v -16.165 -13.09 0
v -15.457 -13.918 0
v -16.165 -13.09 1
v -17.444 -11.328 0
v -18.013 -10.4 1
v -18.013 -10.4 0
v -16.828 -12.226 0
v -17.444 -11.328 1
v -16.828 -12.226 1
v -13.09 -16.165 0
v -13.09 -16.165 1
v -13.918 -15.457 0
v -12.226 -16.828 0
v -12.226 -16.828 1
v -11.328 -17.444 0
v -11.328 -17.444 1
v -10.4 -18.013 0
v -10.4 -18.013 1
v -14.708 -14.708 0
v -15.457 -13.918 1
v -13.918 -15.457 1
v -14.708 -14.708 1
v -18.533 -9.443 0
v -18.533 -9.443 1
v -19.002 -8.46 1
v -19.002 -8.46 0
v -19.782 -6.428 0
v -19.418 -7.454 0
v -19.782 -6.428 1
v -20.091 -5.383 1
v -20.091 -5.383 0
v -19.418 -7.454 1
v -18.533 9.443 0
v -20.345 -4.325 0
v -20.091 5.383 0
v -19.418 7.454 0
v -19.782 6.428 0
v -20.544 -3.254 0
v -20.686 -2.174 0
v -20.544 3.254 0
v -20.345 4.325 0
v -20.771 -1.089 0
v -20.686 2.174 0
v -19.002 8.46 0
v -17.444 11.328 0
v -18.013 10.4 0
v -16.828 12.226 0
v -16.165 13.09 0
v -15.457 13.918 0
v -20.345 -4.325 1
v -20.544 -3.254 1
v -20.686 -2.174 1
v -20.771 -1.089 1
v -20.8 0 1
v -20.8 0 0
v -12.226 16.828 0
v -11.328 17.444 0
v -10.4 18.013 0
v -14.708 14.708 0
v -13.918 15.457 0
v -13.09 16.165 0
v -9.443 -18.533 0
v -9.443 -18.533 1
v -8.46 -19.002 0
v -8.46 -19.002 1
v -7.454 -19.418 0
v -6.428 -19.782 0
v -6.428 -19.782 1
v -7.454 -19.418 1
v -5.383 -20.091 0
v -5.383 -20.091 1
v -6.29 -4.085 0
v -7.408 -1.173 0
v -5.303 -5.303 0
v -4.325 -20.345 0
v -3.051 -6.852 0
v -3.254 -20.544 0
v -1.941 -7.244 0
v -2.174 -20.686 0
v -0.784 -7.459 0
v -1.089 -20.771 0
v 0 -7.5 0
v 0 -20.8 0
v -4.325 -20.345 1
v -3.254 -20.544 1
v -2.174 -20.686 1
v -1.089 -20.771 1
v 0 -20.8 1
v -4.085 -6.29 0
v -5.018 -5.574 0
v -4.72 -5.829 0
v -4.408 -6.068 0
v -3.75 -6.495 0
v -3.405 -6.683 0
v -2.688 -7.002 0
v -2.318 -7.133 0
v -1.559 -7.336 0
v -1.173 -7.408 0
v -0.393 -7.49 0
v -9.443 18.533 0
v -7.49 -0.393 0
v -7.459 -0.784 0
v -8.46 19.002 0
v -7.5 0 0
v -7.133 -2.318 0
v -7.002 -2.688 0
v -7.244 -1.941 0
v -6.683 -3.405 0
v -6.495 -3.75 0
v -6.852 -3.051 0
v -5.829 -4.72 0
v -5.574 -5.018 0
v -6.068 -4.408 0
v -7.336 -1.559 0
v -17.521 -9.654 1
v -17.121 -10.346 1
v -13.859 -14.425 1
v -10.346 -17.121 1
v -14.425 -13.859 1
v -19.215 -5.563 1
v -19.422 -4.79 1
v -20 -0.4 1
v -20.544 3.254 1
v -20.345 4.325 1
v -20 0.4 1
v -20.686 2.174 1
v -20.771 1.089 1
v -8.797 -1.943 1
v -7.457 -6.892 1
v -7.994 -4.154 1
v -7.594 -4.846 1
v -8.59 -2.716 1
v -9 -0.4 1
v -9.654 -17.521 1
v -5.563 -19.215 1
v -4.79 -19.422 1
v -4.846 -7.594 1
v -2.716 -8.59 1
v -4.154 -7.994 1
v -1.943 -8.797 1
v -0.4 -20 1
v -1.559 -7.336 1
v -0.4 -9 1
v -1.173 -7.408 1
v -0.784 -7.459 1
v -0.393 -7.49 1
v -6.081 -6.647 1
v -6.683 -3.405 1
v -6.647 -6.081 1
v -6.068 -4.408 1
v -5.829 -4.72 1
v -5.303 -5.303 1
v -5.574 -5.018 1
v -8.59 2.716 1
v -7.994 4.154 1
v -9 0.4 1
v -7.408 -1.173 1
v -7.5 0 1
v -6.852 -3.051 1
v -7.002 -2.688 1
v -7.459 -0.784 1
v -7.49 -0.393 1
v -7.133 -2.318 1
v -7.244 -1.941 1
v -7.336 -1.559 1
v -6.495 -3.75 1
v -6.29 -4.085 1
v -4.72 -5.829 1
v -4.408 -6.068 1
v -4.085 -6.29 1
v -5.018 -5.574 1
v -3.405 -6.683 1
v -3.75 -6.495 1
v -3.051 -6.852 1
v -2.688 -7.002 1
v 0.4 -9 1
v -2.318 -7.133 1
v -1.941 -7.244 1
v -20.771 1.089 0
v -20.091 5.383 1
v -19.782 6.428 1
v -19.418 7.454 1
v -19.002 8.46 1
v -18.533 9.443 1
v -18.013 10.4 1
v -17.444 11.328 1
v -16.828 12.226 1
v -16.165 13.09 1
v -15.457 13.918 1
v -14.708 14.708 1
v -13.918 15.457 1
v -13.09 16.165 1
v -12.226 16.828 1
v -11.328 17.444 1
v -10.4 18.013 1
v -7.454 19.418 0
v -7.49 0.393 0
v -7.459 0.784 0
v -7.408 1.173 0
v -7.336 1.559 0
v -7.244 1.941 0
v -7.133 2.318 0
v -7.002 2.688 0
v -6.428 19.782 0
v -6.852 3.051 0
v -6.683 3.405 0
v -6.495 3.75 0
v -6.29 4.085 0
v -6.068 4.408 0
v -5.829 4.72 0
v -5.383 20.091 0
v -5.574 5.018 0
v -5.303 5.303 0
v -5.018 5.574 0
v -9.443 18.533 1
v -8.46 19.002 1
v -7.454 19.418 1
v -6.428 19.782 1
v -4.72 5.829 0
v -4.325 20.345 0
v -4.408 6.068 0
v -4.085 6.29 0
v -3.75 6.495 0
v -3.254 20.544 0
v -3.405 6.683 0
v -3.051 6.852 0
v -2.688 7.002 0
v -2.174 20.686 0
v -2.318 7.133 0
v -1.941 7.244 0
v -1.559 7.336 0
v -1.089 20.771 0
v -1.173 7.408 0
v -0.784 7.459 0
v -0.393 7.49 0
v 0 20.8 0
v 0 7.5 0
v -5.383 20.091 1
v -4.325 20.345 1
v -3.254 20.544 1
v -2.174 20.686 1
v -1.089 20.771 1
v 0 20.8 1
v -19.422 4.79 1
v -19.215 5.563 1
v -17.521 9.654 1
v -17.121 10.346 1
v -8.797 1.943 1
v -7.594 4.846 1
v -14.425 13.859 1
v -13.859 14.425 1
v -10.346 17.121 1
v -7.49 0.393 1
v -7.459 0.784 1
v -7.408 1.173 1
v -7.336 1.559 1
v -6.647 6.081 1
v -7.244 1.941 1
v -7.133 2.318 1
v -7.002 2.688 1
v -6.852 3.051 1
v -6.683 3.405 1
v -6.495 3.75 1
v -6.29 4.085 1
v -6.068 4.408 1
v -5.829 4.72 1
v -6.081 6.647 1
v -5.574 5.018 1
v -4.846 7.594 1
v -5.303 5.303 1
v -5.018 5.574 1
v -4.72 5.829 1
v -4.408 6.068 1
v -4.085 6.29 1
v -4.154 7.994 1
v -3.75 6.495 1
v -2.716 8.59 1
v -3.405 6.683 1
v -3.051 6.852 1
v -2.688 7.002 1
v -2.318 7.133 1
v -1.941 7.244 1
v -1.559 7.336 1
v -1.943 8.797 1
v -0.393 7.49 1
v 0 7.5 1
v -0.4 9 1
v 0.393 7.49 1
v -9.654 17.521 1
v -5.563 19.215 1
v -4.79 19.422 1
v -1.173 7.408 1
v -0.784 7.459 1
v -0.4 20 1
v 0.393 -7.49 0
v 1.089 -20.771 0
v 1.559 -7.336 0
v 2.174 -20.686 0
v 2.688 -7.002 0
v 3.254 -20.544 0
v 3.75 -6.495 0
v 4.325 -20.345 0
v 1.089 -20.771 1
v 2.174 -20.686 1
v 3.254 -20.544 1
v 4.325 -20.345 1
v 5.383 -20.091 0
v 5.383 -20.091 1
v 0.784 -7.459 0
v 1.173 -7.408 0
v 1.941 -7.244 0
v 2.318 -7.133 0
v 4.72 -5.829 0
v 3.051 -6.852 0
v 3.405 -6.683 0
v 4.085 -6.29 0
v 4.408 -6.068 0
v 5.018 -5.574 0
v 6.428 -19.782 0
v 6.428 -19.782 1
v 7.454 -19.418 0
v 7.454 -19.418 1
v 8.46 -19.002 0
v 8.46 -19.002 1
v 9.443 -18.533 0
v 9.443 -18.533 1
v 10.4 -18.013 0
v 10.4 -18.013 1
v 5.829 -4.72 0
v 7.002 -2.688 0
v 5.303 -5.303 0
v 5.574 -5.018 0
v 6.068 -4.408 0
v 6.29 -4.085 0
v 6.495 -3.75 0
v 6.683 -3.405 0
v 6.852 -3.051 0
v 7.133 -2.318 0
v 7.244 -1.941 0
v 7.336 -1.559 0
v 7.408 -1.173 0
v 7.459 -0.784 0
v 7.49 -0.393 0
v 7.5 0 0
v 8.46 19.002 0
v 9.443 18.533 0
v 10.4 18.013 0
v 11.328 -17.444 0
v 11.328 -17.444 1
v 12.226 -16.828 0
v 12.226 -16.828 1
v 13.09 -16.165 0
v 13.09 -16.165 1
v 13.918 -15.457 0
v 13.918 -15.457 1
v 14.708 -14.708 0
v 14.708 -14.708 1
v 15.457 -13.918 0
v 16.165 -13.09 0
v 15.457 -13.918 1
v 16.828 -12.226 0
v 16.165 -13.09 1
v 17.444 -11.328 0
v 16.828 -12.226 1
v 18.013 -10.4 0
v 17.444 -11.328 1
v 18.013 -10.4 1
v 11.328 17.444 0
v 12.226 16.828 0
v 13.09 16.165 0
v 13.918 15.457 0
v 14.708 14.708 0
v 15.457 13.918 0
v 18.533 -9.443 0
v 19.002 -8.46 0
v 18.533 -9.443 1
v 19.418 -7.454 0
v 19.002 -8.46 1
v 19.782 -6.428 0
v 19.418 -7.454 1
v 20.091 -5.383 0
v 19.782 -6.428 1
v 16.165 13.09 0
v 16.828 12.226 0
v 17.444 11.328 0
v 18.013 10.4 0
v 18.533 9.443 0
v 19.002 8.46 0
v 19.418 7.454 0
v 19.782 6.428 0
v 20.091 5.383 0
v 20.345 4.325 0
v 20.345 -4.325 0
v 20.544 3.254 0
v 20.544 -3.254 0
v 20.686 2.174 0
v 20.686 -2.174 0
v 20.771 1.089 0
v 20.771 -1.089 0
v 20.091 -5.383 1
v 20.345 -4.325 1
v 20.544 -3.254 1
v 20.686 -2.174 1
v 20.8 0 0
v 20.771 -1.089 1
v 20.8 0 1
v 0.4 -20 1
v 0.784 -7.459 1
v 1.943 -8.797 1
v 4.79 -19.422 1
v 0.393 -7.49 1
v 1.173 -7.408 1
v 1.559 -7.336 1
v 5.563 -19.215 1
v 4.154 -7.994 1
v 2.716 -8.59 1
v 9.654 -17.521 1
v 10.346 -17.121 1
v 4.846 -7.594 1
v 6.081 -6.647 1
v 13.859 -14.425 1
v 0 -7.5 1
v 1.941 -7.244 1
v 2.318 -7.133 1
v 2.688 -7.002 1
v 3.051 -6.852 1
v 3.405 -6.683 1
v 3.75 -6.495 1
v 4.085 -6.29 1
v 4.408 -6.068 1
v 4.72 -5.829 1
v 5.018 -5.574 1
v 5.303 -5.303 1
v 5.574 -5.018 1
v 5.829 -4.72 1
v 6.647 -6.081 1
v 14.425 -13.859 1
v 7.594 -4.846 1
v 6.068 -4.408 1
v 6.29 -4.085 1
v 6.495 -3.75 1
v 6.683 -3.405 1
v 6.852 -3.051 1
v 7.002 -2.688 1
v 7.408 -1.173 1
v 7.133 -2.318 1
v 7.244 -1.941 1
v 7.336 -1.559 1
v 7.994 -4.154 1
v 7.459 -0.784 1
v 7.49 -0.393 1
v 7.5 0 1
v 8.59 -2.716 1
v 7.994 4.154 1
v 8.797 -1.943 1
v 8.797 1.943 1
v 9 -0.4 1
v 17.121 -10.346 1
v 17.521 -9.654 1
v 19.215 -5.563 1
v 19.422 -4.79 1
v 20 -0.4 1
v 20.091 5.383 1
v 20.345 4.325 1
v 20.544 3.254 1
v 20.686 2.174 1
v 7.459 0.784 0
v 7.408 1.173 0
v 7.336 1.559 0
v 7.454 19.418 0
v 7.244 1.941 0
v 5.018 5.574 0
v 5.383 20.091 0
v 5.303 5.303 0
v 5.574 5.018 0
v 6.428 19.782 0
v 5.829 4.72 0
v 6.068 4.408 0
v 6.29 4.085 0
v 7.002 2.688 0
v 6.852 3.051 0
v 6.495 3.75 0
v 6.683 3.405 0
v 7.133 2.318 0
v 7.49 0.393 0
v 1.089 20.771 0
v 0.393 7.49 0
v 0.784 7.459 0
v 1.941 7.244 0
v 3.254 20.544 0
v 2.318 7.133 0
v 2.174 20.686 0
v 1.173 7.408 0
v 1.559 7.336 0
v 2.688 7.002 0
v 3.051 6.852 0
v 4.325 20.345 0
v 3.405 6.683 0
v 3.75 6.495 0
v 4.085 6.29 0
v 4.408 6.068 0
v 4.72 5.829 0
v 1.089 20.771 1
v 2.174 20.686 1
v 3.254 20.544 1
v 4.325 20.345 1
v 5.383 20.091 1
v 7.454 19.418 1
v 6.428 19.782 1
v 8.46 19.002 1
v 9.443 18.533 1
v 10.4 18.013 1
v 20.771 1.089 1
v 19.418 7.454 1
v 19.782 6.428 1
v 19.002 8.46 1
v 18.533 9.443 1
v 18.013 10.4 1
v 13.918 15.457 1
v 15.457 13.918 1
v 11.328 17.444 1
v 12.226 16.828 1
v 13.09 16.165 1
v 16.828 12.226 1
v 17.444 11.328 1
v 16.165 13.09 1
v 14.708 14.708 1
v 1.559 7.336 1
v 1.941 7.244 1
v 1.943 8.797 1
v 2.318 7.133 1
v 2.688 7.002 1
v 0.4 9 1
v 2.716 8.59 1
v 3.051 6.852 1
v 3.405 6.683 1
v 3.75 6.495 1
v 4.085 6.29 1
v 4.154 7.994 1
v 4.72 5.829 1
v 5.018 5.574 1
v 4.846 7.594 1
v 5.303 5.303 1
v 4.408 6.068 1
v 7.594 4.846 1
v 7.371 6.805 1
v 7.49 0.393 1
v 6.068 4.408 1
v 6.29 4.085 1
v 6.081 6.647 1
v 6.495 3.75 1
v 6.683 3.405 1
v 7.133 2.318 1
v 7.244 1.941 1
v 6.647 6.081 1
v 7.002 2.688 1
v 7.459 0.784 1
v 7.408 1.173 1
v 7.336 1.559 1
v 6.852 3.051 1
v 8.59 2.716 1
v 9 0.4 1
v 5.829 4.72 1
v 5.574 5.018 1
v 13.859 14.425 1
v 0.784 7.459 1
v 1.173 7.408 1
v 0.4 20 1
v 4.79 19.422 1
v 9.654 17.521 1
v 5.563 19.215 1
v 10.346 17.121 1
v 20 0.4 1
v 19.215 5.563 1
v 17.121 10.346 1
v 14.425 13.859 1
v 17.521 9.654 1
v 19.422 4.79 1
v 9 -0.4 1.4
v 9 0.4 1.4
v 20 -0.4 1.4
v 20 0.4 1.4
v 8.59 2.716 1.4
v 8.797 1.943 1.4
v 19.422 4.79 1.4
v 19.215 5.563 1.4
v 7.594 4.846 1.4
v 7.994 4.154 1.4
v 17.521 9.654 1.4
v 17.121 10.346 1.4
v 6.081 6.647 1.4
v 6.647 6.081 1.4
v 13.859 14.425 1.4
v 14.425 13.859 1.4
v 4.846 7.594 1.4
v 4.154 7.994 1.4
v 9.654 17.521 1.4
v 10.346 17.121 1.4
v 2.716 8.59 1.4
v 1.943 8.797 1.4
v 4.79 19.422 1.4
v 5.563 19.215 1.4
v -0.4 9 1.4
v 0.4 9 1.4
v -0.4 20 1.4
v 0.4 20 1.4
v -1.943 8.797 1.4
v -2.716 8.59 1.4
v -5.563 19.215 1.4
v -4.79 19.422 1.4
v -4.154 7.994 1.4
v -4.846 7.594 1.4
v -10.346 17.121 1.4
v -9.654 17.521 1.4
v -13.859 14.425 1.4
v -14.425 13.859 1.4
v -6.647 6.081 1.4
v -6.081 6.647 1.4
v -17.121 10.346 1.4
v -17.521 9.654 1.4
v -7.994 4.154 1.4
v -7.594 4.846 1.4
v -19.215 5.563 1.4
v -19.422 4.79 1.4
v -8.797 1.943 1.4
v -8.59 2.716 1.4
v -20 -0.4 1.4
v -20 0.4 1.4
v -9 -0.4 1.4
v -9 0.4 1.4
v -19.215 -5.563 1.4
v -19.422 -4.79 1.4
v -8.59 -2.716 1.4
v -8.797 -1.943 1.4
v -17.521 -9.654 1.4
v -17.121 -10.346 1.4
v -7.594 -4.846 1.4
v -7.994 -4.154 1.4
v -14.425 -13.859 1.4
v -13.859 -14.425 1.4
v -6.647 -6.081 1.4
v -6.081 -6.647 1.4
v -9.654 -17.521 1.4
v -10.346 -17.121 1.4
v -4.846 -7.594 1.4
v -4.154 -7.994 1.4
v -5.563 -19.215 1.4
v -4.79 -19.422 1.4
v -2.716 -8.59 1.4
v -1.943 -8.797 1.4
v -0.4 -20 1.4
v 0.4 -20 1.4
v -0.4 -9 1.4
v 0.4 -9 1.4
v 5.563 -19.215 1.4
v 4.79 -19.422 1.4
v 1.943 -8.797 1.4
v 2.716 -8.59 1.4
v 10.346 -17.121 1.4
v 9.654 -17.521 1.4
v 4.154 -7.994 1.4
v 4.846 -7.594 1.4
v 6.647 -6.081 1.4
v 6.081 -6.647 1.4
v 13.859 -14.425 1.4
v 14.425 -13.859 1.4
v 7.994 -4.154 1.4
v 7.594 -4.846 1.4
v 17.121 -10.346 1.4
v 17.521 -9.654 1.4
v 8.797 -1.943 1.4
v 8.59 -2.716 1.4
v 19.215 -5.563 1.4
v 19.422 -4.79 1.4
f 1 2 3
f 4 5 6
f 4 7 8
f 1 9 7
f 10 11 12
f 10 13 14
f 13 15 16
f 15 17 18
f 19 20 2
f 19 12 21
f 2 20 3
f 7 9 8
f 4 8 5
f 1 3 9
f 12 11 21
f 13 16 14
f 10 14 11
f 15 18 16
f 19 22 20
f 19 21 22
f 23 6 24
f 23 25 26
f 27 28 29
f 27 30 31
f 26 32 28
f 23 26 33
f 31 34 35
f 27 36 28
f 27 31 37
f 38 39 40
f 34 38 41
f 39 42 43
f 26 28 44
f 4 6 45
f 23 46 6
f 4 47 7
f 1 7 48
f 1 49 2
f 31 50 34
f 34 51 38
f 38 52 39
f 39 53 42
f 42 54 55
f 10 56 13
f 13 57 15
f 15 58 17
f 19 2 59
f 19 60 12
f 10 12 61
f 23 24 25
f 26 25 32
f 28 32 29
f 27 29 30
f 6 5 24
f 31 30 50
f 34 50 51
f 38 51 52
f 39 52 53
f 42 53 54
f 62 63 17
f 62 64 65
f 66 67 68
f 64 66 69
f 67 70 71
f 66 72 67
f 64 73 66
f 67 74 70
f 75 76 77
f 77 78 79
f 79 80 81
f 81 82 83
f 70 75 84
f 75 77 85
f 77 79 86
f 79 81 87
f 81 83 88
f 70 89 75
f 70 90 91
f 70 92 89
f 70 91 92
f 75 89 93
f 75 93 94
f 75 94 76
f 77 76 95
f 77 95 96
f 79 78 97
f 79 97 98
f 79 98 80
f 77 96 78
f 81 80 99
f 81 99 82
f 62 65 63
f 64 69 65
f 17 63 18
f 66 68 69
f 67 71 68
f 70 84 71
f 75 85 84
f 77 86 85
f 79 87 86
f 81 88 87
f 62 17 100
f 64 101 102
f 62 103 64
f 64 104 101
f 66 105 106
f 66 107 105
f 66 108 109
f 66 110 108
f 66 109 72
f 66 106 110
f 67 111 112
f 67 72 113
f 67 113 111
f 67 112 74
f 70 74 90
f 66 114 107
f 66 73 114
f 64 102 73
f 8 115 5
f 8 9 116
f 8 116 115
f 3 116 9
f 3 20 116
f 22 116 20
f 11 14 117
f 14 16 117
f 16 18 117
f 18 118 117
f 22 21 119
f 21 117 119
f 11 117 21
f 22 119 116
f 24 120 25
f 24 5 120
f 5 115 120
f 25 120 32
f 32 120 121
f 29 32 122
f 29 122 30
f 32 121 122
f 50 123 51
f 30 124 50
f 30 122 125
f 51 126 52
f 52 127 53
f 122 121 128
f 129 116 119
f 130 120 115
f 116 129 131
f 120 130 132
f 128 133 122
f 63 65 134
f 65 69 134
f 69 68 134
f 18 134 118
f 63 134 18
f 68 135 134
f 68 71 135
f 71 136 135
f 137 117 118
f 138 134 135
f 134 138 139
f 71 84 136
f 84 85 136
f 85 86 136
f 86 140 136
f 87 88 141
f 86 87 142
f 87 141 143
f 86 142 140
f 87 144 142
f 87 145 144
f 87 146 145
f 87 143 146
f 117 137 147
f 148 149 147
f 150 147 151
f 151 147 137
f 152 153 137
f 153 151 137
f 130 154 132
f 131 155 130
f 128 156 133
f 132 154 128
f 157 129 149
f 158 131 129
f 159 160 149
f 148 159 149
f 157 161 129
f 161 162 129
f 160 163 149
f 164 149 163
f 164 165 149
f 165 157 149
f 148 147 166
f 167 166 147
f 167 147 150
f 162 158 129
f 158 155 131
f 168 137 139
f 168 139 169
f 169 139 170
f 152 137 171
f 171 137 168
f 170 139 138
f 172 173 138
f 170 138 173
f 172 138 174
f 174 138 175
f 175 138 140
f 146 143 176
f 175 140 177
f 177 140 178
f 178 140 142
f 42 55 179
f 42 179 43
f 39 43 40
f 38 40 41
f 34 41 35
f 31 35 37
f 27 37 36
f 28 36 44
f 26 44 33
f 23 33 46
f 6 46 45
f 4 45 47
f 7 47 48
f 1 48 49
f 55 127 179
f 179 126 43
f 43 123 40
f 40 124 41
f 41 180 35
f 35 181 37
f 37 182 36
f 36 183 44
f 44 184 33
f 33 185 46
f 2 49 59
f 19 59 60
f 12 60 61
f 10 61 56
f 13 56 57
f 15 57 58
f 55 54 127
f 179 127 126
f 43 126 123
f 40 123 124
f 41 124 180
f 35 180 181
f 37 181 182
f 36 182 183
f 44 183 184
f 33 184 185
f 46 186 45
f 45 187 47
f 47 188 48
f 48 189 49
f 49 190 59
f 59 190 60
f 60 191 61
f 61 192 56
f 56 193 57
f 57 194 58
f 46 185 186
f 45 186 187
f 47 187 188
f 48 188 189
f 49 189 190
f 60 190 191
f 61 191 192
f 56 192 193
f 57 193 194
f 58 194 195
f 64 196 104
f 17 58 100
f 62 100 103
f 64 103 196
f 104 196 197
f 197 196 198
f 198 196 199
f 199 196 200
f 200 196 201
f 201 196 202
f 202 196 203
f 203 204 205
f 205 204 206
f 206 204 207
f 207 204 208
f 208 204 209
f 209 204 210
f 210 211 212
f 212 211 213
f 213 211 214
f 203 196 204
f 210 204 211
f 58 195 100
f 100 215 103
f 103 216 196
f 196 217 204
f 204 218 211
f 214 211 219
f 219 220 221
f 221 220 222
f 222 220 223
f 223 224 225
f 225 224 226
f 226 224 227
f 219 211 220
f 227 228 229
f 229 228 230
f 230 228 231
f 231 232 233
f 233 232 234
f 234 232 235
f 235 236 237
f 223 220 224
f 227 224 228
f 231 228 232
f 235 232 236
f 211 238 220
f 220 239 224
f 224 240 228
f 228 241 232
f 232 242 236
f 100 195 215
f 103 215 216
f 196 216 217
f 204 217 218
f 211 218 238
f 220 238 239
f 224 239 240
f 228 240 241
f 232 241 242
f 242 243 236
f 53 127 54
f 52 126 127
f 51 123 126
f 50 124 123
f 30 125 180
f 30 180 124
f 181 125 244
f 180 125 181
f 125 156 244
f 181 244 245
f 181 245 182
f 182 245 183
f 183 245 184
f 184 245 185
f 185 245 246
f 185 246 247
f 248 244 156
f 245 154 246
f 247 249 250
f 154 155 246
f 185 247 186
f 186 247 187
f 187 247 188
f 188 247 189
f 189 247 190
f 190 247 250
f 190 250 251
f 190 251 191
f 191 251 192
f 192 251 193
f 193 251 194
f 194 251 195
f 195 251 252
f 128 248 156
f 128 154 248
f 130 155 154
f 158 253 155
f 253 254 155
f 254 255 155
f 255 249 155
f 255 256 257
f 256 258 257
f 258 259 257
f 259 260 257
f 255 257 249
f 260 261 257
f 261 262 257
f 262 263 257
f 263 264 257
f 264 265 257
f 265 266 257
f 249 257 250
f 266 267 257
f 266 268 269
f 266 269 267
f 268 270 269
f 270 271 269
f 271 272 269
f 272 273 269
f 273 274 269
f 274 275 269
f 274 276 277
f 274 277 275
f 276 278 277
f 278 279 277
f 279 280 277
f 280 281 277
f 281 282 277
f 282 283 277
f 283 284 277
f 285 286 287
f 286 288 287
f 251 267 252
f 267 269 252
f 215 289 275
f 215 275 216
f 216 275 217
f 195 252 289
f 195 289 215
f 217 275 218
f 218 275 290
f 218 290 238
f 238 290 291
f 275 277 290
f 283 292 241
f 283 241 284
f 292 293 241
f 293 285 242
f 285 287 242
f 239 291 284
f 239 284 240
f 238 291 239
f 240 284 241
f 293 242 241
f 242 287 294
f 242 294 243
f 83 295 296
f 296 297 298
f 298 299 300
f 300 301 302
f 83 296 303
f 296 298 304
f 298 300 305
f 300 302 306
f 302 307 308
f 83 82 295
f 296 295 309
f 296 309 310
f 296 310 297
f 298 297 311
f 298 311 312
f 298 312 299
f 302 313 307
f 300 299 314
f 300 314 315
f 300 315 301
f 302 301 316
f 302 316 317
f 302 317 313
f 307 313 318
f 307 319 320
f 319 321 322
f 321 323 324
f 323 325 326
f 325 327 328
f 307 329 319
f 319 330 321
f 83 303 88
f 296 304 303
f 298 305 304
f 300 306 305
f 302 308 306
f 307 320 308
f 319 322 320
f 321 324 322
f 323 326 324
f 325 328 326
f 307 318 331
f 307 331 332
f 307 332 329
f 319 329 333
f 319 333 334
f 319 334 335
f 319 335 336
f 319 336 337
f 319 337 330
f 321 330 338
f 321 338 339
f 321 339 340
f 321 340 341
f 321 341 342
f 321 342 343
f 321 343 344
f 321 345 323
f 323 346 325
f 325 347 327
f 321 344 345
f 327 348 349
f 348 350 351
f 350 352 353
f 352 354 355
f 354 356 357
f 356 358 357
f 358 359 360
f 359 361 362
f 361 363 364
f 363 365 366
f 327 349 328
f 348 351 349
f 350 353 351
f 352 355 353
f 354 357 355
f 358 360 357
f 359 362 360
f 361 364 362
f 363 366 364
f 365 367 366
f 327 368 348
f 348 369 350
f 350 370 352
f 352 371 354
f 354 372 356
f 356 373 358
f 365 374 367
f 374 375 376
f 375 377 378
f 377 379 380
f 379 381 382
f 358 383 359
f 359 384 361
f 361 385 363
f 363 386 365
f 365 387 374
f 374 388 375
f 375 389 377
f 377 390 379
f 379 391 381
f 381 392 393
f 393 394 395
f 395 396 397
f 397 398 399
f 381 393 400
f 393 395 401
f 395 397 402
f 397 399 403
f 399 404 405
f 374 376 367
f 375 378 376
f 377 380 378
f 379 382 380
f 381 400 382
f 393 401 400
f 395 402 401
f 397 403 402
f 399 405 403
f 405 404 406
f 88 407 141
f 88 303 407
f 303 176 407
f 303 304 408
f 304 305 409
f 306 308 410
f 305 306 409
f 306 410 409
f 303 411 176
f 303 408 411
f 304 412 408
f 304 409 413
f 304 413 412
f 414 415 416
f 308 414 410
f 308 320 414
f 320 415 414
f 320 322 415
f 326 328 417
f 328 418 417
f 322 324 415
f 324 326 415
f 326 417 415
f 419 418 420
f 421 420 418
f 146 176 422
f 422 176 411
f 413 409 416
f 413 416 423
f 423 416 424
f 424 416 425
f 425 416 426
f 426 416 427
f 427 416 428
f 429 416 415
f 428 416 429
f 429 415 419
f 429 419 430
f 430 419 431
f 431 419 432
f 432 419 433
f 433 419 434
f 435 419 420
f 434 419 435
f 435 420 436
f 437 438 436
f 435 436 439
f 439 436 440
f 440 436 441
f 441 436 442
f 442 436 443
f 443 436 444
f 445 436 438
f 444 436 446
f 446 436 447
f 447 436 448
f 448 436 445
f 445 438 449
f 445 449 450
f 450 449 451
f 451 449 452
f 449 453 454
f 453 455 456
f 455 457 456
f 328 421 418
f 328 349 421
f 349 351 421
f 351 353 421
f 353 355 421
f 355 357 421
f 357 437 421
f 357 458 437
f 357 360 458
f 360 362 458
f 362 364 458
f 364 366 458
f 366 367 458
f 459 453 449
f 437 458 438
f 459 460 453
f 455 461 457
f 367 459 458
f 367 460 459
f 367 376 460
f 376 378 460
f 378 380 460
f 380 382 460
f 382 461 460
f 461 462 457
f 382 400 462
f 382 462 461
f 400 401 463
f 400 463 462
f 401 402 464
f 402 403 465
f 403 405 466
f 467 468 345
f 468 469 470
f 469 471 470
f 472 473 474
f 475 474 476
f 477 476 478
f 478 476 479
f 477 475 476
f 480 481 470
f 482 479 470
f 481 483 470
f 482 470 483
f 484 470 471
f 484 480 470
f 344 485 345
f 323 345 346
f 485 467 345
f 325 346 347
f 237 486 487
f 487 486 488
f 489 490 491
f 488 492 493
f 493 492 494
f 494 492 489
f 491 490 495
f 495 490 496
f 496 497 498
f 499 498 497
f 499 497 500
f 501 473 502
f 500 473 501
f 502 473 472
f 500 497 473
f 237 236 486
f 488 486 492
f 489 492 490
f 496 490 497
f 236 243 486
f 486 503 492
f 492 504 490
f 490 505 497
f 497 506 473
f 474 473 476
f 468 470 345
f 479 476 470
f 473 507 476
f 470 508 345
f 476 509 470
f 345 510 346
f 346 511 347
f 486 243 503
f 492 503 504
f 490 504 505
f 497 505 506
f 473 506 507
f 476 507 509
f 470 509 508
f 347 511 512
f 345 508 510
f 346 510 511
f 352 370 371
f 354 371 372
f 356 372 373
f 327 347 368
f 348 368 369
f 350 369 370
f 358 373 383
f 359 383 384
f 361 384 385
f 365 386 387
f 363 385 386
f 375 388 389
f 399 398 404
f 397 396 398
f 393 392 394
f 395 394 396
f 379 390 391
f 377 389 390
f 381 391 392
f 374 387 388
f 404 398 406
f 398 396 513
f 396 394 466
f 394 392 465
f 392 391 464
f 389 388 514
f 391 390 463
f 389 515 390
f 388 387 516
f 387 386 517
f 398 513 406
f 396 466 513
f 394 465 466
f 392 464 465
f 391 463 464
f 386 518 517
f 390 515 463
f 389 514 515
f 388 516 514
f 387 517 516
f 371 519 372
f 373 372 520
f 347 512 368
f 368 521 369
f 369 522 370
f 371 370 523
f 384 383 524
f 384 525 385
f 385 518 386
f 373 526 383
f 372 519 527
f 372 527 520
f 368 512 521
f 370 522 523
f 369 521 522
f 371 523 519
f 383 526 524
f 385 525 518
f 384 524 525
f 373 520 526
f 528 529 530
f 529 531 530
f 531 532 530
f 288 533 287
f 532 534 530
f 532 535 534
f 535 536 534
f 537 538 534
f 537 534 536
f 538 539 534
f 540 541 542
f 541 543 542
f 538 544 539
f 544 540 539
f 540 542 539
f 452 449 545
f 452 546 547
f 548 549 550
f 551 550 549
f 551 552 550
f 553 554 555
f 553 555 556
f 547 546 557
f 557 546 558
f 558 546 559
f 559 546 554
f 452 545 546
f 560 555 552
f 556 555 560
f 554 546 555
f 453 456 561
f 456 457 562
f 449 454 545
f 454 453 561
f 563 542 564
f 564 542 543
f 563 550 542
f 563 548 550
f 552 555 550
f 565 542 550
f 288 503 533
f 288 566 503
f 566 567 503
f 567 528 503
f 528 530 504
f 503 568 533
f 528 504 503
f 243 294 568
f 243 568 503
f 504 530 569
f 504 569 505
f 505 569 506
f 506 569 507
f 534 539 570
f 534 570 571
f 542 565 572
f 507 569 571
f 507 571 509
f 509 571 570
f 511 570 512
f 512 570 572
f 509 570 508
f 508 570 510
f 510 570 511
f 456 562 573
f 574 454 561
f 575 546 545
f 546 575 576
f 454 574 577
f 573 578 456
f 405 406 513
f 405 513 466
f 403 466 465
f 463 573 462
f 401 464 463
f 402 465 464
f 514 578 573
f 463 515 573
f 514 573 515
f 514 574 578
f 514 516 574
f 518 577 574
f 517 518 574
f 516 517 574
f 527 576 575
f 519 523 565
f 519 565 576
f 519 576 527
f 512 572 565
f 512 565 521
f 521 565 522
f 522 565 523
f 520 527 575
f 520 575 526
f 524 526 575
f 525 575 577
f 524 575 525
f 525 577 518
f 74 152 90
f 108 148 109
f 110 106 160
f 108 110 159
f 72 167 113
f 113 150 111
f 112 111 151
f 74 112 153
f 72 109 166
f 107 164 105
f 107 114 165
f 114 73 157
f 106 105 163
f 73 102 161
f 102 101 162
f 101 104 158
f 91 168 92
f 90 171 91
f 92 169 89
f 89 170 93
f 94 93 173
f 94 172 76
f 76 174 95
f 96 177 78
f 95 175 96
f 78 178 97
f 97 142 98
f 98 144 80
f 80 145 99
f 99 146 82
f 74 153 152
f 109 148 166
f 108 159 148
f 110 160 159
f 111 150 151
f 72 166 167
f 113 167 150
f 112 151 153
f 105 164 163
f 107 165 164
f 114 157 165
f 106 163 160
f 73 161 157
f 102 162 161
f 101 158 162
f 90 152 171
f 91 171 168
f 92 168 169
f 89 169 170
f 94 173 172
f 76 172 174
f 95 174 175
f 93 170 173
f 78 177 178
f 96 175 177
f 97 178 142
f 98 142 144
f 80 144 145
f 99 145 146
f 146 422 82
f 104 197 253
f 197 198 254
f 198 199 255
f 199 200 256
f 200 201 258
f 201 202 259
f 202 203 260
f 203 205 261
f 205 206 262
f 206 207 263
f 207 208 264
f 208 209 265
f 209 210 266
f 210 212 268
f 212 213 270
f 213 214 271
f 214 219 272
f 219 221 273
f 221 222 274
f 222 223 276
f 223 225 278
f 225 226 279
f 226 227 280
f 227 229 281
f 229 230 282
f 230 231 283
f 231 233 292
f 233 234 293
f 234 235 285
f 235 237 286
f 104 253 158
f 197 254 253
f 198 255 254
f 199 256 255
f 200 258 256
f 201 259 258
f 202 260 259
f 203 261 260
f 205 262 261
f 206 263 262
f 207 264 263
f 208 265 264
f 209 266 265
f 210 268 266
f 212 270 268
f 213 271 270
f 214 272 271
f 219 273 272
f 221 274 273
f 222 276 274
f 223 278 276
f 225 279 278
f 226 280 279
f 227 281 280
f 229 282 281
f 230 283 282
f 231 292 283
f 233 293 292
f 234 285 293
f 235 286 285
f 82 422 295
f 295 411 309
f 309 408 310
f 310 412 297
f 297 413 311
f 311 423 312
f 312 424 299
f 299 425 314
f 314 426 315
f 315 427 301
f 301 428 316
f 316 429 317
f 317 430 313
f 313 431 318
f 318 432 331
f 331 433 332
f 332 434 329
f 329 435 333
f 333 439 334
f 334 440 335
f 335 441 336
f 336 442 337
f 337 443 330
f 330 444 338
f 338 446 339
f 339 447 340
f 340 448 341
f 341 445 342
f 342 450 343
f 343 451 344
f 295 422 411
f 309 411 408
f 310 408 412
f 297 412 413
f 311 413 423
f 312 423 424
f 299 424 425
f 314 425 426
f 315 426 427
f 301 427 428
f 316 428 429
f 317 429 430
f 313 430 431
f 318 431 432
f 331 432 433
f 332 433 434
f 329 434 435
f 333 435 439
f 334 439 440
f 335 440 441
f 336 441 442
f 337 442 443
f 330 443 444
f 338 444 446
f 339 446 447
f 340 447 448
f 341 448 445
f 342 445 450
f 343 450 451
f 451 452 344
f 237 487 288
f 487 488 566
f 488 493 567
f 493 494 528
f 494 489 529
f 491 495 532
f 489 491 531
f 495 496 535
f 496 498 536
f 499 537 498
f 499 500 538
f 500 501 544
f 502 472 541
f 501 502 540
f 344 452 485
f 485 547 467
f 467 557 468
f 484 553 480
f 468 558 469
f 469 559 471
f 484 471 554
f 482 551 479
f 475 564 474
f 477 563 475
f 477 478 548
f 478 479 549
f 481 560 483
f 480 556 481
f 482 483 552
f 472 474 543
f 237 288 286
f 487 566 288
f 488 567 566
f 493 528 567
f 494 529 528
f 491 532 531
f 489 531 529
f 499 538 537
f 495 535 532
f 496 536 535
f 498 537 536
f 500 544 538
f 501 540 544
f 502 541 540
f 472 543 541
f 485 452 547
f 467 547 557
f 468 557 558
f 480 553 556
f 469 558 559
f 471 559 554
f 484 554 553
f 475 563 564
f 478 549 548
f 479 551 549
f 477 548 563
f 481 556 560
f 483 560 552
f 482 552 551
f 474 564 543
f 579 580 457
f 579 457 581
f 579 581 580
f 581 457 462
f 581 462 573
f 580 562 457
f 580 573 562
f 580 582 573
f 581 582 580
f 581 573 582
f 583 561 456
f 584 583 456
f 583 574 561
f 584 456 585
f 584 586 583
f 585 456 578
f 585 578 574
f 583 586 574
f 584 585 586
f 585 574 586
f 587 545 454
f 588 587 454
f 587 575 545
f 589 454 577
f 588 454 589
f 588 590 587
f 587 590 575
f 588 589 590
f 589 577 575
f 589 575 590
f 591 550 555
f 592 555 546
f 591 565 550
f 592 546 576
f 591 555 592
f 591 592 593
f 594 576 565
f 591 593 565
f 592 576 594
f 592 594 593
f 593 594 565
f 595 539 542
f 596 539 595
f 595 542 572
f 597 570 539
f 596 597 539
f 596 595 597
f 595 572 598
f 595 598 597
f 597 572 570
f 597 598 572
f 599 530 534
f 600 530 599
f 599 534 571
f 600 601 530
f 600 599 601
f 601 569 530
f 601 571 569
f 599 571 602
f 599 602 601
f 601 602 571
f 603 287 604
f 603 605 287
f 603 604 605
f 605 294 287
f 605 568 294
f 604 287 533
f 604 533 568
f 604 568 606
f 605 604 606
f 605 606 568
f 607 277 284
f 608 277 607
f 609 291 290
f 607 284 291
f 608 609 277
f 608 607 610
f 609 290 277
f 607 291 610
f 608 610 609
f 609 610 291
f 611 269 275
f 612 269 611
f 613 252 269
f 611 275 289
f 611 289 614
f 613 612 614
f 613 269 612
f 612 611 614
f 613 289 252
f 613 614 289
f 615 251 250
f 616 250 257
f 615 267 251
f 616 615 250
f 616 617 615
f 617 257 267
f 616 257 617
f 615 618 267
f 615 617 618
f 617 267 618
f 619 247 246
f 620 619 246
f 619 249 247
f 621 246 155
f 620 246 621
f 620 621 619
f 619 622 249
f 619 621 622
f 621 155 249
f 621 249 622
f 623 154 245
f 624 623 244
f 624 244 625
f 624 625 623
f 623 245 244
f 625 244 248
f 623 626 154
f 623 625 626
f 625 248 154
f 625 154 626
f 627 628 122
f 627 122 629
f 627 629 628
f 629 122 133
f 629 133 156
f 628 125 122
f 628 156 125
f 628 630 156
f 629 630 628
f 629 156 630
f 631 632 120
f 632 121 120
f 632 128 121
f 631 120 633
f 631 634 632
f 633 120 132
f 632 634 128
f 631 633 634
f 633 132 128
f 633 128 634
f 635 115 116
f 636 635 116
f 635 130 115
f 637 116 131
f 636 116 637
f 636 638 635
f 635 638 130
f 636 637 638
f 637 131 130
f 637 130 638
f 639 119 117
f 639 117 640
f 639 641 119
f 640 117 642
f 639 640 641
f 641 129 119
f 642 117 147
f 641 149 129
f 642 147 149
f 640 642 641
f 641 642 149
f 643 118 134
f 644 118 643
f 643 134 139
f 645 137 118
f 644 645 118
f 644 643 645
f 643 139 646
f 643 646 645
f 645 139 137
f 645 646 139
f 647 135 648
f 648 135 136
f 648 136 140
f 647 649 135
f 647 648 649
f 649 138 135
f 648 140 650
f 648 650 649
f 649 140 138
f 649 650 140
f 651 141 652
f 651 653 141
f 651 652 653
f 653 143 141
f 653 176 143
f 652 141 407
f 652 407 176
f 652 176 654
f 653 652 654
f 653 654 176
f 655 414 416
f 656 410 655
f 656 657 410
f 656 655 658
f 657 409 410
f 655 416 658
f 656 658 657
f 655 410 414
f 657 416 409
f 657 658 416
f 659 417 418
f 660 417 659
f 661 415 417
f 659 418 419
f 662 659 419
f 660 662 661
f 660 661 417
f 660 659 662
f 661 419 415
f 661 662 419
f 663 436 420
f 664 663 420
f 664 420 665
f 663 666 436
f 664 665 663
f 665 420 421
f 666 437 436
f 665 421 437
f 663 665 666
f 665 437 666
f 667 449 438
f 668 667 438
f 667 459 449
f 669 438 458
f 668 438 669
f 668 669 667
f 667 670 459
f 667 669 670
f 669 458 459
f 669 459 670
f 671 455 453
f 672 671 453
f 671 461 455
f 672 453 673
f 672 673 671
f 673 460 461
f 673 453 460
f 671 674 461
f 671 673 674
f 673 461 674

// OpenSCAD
// ÍRIS: disco de 41,6 mm x 1 mm com pupila vazada de 15 mm. Imprime em cor escura (azul/verde)
// e cola no rebaixo da frente; o vazio da pupila mostra o fundo branco: pinta de preto ou cola um disco preto.
$fn = 120;
difference() { cylinder(d=41.6, h=1); translate([0,0,-1]) cylinder(d=15, h=3); }
// raios finos da íris (textura), 0,4 mm de relevo
for (a=[0:15:359]) rotate([0,0,a]) translate([9,-0.4,1]) cube([11, 0.8, 0.4]);
